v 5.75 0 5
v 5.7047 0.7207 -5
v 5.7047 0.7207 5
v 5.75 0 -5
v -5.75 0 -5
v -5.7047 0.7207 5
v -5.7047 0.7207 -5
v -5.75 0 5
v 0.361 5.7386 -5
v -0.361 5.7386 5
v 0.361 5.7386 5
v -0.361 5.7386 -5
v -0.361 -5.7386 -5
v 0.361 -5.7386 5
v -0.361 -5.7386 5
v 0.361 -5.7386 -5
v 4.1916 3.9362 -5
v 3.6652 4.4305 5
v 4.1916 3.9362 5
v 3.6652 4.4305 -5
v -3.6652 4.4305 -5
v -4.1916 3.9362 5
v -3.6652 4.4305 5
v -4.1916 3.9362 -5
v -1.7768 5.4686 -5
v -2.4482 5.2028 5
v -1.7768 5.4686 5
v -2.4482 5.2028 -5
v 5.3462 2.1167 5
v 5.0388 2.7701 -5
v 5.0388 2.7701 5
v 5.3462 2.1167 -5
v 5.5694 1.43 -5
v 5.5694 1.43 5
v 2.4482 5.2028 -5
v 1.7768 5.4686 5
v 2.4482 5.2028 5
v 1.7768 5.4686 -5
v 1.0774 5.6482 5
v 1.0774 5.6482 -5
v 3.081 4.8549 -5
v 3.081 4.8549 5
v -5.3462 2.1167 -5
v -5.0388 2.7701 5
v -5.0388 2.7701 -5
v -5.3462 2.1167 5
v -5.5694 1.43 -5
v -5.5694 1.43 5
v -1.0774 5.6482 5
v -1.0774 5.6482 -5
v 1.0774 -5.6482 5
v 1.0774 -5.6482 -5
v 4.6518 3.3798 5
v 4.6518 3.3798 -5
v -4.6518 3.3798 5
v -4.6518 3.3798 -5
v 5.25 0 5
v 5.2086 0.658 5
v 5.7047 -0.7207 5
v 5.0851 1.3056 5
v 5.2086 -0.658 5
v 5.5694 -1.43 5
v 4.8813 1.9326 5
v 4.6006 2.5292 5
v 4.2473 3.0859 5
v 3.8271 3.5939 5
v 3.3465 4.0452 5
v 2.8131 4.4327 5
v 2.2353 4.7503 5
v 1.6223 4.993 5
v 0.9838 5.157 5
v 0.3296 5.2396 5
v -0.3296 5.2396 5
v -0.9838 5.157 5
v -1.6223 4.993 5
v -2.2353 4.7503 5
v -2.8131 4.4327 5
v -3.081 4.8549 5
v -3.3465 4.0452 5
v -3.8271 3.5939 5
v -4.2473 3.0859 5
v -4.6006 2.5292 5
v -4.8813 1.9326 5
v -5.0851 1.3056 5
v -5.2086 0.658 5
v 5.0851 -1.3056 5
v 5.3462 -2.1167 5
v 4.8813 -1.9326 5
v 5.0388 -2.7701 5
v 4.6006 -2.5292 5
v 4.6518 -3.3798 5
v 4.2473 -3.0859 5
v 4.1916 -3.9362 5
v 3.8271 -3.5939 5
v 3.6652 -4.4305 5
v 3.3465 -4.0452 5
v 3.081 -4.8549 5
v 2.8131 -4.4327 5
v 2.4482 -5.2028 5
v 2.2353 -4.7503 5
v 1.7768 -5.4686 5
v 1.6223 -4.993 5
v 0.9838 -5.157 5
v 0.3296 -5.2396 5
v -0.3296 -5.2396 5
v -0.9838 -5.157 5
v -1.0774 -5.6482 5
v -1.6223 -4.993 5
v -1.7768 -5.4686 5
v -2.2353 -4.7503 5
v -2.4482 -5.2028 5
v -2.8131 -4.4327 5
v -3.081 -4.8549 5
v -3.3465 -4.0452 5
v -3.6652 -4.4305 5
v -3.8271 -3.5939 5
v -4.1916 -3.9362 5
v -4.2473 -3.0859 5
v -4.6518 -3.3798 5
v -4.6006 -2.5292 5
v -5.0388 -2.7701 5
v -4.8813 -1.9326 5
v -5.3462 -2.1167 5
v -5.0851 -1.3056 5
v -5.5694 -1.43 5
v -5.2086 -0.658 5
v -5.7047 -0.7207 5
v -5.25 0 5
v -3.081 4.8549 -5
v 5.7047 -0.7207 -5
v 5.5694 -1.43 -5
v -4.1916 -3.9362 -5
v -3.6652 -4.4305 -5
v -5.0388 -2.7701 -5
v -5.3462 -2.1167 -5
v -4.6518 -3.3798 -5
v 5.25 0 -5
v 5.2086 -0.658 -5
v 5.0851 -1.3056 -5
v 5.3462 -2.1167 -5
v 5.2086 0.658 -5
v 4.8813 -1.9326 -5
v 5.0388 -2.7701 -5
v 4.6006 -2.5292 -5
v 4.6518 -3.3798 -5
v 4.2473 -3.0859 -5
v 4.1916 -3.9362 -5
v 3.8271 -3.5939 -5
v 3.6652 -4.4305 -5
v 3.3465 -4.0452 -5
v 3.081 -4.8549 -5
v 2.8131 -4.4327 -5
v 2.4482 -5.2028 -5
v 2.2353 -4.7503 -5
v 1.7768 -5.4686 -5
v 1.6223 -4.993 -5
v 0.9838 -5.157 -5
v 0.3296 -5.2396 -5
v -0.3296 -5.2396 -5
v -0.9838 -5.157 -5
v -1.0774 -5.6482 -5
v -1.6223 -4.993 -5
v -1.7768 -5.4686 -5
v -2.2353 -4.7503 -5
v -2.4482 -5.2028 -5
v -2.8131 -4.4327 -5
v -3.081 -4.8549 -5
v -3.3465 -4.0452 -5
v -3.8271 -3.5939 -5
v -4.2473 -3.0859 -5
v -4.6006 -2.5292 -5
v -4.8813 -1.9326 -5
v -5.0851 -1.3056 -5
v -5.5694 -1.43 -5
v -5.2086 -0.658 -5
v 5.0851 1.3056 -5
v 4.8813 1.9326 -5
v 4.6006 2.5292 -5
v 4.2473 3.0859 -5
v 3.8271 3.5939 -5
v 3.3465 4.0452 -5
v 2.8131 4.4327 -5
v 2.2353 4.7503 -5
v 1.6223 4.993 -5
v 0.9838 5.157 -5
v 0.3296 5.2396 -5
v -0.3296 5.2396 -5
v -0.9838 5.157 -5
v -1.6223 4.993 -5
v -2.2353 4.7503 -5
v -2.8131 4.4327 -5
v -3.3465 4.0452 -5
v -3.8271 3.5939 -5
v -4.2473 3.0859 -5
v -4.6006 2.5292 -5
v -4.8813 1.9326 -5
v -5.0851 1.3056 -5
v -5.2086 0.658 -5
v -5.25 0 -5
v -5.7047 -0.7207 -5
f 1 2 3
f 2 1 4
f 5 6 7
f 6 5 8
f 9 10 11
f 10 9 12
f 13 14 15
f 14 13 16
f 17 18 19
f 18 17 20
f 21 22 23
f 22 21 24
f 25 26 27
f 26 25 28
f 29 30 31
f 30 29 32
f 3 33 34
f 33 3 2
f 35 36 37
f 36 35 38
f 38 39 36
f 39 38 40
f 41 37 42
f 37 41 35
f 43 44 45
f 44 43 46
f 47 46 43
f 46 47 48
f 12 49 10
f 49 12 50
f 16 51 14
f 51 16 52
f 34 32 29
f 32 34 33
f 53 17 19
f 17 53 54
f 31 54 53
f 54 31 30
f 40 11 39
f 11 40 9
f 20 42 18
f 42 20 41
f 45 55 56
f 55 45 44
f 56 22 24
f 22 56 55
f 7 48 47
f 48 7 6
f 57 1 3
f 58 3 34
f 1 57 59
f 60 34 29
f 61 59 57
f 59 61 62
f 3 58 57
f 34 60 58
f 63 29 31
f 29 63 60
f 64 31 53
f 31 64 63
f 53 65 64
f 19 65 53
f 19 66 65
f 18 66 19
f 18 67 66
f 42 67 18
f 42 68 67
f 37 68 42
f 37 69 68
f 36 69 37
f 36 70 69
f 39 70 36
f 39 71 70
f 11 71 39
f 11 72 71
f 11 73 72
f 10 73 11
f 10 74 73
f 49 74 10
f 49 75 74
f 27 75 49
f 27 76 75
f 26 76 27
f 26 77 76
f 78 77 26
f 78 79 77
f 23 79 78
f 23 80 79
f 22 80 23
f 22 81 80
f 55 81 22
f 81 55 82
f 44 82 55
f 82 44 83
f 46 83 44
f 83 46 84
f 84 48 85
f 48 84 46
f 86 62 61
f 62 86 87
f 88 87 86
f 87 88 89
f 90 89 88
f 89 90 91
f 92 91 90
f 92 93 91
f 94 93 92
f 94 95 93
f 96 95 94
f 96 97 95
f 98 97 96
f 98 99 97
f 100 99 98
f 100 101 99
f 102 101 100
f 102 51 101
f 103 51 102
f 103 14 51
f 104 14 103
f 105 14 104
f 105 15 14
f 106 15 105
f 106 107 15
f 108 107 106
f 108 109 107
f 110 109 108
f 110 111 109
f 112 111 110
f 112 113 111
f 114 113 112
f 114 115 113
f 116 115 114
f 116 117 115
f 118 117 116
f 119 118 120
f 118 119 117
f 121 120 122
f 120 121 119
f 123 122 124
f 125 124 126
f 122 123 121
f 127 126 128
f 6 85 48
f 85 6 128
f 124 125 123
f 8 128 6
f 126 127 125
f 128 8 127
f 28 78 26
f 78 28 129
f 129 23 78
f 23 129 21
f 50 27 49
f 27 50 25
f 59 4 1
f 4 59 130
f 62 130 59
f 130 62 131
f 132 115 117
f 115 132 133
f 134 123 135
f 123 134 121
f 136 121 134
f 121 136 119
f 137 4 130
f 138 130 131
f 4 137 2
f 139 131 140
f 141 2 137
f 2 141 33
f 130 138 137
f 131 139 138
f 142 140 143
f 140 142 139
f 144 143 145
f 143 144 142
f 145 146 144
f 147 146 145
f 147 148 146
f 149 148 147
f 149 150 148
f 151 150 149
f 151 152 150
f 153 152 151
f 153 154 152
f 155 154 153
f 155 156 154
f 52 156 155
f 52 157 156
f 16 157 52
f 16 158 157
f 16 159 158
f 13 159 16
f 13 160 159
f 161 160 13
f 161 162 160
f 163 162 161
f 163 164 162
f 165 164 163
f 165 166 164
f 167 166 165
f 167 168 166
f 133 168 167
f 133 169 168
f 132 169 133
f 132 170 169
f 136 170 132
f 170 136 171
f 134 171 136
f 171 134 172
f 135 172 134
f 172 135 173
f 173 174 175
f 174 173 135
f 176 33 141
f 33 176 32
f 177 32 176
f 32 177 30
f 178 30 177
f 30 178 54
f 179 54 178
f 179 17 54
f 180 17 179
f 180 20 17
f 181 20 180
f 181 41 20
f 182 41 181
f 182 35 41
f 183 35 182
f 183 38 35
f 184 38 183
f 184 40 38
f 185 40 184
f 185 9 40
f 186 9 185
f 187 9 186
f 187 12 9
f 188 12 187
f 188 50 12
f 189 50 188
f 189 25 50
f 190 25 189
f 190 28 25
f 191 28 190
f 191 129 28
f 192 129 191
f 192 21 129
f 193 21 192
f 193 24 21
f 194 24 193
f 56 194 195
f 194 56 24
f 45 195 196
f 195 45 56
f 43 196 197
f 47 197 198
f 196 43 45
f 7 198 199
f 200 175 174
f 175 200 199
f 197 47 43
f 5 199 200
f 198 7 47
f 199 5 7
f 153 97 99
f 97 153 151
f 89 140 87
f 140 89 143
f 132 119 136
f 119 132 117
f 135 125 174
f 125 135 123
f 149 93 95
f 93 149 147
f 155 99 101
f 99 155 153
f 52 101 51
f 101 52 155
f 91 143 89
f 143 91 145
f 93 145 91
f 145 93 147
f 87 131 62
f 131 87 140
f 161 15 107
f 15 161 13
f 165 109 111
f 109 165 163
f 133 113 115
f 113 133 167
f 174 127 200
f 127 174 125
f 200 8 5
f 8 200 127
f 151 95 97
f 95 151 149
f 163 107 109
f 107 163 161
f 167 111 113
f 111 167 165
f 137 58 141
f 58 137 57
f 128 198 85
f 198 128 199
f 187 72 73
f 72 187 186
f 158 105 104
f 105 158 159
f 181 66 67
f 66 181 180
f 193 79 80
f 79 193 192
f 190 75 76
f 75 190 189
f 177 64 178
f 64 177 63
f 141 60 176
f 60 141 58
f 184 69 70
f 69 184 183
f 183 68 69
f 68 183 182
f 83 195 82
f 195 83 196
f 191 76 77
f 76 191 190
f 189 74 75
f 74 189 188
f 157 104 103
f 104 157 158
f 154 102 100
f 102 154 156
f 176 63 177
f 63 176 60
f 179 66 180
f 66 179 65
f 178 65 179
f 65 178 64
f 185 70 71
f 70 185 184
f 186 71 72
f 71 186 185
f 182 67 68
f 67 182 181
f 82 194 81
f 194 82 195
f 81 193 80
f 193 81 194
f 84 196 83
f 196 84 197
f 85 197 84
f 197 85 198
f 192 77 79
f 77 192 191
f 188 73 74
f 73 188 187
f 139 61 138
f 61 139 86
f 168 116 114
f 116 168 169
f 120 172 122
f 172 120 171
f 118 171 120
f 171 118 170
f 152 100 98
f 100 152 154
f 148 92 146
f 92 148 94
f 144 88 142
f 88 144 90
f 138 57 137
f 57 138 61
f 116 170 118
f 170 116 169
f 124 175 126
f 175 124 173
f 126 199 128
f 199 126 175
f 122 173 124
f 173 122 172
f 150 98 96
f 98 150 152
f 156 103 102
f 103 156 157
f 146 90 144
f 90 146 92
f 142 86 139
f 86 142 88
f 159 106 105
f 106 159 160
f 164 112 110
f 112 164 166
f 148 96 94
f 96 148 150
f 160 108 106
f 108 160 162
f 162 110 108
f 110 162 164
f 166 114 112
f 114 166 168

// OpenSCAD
$fn = 50;


difference() {
	union() {
		translate(v = [0, 0, -5.0000000000]) {
			cylinder(h = 10, r = 5.7500000000);
		}
	}
	union() {
		translate(v = [0, 0, -100.0000000000]) {
			cylinder(h = 200, r = 5.2500000000);
		}
	}
}
